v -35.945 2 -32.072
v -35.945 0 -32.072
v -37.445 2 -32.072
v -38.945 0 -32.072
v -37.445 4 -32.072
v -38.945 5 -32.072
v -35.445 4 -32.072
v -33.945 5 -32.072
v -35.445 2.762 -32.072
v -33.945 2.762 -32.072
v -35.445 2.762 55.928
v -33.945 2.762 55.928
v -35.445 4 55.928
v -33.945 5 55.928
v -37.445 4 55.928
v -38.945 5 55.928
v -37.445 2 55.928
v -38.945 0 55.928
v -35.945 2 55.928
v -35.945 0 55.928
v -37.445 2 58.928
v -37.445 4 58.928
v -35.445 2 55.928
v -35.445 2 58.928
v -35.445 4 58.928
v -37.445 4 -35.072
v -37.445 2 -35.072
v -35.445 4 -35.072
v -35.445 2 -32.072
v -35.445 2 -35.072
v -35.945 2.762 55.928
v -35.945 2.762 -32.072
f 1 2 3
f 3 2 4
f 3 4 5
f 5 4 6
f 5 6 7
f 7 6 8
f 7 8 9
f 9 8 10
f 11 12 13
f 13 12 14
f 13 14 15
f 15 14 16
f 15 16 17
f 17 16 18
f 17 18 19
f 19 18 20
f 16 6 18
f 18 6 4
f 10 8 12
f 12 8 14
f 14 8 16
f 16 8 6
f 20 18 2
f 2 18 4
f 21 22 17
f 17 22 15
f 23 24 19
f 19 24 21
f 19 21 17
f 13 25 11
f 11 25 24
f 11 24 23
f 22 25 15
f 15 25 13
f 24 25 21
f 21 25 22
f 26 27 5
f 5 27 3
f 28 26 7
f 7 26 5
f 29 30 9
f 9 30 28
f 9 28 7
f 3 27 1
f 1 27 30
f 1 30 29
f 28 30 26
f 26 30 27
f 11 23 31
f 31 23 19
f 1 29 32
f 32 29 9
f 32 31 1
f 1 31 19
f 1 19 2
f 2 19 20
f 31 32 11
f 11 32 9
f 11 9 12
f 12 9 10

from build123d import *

# Parameters (mm, degrees)
SKETCH2_W           = 5
SKETCH2_H           = 88
BOSS_EXTRUDE1_DEPTH = 5
SKETCH6_W           = 2
SKETCH6_H           = 2
BOSS_EXTRUDE4_DEPTH = 3
SKETCH4_W           = 2
SKETCH4_H           = 2
BOSS_EXTRUDE3_DEPTH = 3
SKETCH5_W           = 2
SKETCH5_H           = 88
CUT_EXTRUDE2_DEPTH  = 2.762


with BuildPart() as part:
    # Sketch2 → Boss-Extrude1 (new body)
    with BuildSketch(Plane(origin=(0, 0, 0), x_dir=(1, 0, 0), z_dir=(0, 1, 0))):
        with Locations((-36.444928995, -11.927663992)):
            Rectangle(SKETCH2_W, SKETCH2_H)
    extrude(amount=BOSS_EXTRUDE1_DEPTH)

    # Sketch6 → Boss-Extrude4 (add)
    with BuildSketch(Plane.XY.offset(55.927663992)):
        with Locations((-36.444928995, 3)):
            Rectangle(SKETCH6_W, SKETCH6_H)
    extrude(amount=BOSS_EXTRUDE4_DEPTH)

    # Sketch4 → Boss-Extrude3 (add)
    with BuildSketch(Plane(origin=(0, 0, -32.072336008), x_dir=(-1, 0, 0), z_dir=(0, 0, -1))):
        with Locations((36.444928995, 3)):
            Rectangle(SKETCH4_W, SKETCH4_H)
    extrude(amount=BOSS_EXTRUDE3_DEPTH)

    # Sketch5 → Cut-Extrude2 (cut)
    with BuildSketch(Plane.XZ):
        with Locations((-34.944928995, 11.927663992)):
            Rectangle(SKETCH5_W, SKETCH5_H)
    extrude(amount=-CUT_EXTRUDE2_DEPTH, mode=Mode.SUBTRACT)


solid = part.part
